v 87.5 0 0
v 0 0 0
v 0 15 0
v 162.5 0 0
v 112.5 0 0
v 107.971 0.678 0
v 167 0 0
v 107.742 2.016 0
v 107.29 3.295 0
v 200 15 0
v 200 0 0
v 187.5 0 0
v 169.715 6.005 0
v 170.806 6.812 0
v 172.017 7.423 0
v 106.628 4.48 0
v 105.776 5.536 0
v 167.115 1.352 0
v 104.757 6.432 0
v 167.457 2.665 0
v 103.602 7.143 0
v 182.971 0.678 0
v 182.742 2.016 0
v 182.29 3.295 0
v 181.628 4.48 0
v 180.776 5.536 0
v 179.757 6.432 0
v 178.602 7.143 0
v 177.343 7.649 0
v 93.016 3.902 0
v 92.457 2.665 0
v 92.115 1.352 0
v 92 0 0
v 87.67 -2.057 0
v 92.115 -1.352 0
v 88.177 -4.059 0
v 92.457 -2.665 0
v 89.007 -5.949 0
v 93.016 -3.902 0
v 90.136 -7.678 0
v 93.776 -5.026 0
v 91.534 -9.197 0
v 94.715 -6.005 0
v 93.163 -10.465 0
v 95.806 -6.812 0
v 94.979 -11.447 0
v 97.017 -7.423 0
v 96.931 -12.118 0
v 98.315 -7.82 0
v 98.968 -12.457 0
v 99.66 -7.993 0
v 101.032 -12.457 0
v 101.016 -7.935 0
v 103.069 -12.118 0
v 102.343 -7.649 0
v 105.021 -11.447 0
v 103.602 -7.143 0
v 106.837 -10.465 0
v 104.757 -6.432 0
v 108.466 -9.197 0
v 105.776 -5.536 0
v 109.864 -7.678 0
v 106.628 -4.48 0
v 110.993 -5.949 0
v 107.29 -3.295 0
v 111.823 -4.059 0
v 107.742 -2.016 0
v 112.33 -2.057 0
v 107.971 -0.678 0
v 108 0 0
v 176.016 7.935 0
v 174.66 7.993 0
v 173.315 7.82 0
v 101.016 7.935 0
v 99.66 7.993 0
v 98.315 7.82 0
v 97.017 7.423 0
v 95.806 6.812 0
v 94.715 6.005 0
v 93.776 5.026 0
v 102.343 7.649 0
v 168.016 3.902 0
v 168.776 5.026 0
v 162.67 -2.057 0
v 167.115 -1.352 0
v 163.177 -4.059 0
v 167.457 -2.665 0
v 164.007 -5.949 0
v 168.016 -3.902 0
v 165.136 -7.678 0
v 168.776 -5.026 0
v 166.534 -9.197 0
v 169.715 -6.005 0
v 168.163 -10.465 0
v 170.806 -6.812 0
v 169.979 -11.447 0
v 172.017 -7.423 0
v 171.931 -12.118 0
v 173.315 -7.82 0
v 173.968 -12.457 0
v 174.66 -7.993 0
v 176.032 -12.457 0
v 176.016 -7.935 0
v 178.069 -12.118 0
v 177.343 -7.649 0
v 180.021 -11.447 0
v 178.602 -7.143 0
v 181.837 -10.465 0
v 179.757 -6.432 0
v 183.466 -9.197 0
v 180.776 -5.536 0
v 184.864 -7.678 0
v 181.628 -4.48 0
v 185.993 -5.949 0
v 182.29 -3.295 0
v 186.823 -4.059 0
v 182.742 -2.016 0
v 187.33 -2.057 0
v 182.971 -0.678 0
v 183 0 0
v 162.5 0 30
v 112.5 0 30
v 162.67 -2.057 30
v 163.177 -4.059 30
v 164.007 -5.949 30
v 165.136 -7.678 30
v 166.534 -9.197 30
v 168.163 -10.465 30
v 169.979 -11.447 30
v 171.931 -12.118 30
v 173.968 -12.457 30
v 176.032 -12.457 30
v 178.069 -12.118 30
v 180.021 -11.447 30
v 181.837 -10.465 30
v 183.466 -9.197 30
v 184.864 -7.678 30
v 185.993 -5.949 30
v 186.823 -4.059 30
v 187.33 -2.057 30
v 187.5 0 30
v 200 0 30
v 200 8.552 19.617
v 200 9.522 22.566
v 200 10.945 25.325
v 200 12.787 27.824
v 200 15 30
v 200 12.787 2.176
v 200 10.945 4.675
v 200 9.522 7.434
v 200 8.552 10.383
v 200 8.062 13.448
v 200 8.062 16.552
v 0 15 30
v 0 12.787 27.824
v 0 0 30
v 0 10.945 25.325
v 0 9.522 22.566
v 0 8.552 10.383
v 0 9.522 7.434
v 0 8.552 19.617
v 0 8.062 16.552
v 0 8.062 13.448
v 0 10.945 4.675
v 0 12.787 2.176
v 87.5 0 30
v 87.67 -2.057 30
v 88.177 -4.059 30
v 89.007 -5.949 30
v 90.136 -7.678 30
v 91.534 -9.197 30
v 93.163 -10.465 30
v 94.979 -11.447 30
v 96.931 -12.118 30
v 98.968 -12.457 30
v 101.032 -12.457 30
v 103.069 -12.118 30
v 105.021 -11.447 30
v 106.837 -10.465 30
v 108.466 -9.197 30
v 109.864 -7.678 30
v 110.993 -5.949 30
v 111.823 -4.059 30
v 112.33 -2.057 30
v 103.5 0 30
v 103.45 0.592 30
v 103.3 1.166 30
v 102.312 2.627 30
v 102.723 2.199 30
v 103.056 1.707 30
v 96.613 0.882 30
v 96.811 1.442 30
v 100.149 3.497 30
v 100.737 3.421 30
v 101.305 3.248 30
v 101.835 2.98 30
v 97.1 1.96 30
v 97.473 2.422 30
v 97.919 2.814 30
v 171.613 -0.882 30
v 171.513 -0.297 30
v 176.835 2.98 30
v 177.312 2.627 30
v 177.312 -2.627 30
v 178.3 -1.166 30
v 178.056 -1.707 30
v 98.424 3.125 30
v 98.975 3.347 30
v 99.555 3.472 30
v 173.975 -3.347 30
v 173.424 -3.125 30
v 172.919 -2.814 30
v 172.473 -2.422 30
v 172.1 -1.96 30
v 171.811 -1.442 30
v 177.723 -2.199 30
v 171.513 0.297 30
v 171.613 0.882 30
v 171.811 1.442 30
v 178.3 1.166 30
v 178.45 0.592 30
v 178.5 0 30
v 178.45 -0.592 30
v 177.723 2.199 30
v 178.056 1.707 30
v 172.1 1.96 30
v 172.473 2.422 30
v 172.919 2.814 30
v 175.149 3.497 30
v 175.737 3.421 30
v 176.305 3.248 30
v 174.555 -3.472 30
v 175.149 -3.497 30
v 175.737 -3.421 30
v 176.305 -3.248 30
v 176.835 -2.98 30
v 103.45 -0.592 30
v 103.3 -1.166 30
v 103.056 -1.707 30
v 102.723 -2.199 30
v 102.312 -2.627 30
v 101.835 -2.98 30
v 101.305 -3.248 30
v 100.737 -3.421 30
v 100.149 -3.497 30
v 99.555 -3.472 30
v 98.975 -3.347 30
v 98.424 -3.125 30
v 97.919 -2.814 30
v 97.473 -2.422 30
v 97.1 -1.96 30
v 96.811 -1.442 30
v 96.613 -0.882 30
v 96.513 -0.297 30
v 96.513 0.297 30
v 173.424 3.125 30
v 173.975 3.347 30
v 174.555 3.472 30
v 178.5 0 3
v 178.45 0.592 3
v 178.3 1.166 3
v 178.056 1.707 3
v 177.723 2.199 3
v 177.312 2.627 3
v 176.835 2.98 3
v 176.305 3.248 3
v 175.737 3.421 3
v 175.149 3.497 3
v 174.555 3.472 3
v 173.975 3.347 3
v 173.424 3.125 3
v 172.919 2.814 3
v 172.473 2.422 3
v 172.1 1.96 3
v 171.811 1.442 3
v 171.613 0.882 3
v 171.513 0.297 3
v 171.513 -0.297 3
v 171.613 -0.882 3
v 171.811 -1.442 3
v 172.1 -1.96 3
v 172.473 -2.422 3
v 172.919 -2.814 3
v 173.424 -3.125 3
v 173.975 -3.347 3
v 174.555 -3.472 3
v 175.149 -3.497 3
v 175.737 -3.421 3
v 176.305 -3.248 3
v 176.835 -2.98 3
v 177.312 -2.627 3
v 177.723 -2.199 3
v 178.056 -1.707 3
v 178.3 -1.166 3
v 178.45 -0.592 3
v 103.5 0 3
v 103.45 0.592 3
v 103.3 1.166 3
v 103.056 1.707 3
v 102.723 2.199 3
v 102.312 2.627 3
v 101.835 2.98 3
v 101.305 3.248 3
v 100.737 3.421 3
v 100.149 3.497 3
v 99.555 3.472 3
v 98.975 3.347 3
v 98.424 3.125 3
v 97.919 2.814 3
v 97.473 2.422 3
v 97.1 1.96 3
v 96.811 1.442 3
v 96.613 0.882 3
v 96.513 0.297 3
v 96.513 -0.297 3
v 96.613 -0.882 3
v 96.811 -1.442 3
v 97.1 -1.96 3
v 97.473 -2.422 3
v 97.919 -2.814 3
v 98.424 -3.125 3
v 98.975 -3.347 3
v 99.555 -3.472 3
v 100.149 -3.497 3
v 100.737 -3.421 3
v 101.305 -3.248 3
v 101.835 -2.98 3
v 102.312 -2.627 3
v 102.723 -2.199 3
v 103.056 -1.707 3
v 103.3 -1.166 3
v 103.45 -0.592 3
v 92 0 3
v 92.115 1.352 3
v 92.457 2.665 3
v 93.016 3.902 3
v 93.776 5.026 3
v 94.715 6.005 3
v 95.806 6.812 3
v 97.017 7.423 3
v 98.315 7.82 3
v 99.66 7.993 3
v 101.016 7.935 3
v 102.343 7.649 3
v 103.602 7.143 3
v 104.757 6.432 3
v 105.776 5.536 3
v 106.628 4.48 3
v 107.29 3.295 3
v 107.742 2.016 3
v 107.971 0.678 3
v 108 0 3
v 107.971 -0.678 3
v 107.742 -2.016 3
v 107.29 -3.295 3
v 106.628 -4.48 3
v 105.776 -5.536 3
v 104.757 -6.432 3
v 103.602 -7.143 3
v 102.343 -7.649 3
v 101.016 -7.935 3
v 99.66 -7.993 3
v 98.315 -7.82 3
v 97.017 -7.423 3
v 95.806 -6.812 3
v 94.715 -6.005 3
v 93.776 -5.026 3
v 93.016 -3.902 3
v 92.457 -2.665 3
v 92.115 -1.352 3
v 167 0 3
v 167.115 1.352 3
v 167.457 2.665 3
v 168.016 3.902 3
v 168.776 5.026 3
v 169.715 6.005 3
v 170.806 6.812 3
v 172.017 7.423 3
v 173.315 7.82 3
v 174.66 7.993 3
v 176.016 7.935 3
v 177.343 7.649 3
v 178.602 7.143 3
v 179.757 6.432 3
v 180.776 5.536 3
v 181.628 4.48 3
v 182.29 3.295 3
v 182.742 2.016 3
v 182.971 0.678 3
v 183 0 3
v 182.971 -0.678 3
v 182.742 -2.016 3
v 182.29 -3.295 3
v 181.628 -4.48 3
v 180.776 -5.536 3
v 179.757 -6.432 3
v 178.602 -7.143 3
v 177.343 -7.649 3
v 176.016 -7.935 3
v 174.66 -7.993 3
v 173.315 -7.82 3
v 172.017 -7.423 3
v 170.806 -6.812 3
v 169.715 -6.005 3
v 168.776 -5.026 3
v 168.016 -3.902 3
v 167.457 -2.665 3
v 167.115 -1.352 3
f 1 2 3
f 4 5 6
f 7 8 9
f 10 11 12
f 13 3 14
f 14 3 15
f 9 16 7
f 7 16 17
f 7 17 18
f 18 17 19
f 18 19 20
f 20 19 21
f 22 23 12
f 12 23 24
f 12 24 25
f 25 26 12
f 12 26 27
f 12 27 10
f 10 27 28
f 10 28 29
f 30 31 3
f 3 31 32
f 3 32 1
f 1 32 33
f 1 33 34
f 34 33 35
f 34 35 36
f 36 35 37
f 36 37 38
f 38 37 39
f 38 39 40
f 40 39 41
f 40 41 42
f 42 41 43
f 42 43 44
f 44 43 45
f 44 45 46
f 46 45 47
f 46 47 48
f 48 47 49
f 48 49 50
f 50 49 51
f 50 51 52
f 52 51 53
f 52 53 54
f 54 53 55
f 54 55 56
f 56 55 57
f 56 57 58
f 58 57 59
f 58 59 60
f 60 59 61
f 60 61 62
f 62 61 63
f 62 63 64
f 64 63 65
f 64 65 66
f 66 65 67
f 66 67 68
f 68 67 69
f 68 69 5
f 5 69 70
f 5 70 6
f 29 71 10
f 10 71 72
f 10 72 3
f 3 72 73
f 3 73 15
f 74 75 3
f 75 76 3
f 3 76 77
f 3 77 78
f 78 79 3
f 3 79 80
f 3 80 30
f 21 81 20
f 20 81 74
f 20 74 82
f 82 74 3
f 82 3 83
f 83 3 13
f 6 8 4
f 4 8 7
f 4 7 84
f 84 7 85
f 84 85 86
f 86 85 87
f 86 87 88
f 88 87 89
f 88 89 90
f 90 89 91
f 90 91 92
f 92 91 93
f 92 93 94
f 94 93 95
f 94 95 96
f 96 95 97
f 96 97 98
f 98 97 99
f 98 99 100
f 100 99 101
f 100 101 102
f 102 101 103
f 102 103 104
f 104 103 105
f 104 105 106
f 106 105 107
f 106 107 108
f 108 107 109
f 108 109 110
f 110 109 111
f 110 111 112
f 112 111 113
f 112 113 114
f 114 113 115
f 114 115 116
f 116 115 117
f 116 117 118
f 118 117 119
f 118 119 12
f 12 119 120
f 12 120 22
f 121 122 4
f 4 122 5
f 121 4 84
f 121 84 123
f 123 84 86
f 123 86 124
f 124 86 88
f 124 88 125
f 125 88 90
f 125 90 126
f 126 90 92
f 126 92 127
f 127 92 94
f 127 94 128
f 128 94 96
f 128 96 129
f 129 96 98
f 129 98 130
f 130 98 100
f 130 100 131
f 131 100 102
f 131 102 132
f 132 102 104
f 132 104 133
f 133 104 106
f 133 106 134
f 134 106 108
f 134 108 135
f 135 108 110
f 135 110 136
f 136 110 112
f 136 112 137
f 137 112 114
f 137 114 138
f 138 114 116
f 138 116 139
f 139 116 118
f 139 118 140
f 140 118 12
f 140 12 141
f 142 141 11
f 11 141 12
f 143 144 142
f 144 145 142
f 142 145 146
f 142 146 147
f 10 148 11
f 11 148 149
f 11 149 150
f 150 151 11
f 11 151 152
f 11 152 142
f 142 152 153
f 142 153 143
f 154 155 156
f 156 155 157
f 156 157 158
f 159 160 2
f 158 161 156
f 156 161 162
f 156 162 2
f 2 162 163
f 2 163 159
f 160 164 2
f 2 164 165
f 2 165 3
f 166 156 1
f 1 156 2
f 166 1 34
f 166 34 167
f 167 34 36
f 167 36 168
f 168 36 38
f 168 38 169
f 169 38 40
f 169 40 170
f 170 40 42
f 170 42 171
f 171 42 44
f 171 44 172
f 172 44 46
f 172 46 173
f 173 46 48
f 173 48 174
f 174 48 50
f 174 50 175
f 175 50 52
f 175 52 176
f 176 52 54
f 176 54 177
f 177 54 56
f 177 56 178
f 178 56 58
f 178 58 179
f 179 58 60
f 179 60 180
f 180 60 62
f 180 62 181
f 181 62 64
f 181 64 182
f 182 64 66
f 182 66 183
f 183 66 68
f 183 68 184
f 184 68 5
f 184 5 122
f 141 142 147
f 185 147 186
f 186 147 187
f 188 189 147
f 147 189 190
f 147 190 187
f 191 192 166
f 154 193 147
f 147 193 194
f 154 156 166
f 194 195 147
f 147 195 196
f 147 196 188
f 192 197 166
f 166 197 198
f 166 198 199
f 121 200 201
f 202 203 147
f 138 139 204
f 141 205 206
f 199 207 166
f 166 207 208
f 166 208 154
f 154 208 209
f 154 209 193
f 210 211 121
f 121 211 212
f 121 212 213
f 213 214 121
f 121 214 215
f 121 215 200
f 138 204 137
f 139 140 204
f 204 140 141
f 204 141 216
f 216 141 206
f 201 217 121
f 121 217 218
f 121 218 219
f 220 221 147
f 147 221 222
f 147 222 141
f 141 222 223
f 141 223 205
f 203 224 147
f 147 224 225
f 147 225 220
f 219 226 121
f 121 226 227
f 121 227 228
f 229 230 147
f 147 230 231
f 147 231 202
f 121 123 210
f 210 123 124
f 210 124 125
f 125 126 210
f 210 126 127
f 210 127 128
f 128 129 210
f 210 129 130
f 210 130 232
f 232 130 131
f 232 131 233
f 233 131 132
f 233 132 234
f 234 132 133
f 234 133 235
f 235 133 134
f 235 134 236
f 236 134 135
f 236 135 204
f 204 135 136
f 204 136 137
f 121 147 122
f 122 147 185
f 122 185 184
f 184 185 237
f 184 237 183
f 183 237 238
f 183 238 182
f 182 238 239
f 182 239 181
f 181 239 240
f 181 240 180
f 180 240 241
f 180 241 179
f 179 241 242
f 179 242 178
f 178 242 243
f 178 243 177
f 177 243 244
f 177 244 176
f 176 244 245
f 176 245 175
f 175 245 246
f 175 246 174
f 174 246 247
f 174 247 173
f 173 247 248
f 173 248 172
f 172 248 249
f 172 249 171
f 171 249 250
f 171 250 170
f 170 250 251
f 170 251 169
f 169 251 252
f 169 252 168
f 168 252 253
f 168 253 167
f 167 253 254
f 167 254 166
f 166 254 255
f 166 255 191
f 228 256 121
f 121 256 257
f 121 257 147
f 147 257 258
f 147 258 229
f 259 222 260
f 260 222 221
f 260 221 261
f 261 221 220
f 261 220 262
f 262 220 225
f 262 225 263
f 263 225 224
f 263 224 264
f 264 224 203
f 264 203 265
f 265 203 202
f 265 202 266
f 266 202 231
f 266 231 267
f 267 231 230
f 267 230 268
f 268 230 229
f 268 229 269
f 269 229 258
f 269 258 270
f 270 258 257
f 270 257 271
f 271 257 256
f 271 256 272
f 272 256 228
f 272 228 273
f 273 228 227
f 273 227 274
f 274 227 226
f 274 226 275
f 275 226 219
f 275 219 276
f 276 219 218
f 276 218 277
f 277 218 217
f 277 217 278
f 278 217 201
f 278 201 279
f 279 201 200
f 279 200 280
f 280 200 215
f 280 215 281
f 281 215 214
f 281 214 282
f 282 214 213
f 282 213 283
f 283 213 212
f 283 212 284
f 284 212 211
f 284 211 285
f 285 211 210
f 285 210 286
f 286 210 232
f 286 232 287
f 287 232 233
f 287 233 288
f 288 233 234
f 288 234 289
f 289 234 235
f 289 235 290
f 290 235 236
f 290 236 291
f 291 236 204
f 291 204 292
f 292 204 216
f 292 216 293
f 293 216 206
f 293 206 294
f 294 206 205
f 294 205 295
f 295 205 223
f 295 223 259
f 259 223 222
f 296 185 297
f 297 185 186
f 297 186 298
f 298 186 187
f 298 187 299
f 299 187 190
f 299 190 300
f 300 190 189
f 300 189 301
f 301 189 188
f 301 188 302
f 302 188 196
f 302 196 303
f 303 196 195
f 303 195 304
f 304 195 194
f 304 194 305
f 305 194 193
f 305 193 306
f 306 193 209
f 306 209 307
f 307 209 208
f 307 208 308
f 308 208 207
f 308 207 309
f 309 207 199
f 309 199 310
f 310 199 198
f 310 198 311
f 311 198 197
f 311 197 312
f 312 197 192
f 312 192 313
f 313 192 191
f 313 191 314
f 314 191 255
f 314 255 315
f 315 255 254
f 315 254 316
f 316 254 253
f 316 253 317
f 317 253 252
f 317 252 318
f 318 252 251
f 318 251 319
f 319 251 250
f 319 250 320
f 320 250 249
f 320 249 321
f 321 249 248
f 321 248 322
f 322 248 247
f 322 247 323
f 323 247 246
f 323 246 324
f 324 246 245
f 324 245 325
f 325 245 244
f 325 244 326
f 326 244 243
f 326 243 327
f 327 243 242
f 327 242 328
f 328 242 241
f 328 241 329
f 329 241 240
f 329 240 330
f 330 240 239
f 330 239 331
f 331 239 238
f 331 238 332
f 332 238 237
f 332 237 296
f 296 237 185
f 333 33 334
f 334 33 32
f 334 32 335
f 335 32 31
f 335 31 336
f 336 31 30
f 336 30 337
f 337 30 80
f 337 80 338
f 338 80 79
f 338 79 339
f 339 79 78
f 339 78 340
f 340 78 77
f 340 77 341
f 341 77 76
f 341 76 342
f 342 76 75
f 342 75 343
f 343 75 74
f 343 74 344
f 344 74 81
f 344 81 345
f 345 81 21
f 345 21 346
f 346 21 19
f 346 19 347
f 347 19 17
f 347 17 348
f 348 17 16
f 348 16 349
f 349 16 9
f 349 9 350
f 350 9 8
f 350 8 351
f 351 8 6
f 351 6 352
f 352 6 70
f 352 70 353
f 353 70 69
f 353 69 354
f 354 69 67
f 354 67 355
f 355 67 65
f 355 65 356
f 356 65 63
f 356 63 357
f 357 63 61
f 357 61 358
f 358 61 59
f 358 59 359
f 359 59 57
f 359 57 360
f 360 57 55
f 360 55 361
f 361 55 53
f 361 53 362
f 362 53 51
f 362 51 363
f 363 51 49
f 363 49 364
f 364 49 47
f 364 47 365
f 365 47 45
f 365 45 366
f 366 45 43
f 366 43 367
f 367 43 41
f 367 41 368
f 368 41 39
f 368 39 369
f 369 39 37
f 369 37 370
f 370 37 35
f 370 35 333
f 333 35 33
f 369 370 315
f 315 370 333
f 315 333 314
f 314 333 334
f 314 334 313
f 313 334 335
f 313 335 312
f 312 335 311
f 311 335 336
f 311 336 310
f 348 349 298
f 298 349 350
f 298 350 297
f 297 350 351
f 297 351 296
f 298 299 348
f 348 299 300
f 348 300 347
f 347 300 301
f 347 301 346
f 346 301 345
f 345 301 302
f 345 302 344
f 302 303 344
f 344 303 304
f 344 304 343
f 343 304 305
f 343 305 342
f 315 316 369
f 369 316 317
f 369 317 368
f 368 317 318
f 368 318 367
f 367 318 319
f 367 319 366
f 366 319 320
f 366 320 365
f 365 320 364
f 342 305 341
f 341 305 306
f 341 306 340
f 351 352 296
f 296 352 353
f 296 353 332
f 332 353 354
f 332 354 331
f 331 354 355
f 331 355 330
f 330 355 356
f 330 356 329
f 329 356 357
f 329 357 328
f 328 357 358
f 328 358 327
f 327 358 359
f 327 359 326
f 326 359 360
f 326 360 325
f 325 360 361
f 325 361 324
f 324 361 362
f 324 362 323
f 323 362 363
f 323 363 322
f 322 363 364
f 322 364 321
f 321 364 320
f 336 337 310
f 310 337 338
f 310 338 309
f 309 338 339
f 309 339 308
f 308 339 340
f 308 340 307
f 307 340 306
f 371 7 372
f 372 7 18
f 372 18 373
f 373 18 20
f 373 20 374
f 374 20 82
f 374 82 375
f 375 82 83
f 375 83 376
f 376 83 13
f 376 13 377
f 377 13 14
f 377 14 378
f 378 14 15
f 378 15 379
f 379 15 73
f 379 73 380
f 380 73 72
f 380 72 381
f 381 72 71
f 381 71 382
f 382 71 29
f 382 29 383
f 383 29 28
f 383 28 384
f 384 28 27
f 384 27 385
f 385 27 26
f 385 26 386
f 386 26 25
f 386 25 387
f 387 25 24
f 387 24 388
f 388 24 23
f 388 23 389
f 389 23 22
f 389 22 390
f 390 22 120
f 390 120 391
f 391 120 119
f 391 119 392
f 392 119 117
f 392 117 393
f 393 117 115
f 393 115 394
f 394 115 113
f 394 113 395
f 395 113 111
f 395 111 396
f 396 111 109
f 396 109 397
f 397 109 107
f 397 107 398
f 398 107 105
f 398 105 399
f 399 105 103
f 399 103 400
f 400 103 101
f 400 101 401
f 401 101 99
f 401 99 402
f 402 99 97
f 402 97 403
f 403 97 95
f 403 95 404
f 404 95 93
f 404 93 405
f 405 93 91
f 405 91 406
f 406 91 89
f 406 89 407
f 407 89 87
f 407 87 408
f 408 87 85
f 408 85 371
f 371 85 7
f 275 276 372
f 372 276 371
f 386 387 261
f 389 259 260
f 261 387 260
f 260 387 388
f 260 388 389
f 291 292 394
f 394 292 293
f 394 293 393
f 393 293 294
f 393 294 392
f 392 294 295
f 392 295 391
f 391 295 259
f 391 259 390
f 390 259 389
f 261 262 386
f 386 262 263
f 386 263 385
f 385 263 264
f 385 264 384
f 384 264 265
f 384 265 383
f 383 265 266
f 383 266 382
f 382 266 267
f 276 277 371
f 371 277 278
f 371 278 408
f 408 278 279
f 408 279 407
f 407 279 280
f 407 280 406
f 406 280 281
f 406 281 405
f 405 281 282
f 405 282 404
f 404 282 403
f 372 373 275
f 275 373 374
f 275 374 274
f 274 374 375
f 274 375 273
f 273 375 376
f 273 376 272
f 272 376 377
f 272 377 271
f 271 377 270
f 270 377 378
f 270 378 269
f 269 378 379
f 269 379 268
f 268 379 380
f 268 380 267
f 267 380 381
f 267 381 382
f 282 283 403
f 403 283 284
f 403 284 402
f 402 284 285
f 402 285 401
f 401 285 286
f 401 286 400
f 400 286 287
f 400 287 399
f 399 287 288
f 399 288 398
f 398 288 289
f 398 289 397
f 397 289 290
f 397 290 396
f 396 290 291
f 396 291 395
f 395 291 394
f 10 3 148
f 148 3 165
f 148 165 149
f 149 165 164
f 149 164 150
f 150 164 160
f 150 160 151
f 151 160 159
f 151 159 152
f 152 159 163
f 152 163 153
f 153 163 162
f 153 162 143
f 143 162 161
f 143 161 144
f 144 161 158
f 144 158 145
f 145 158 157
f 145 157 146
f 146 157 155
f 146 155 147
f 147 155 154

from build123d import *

# Parameters (mm, degrees)
SKETCH1_R           = 12.5
SKETCH1_W           = 200
SKETCH1_H           = 15
BOSS_EXTRUDE1_DEPTH = 30
CUT_EXTRUDE2_REACH  = 204.793
SKETCH2_R           = 3.5
CUT_EXTRUDE3_START  = -27
SKETCH2_3_R         = 8
SKETCH2_3_R_2       = 3.5
CUT_EXTRUDE3_DEPTH  = 3
CUT_EXTRUDE4_REACH  = 204.793


with BuildPart() as part:
    # Sketch1 → Boss-Extrude1 (new body)
    with BuildSketch(Plane.XY):
        with Locations((175, 0)):
            Circle(SKETCH1_R)
        with Locations((100, 0)):
            Circle(SKETCH1_R)
        with Locations((100, 7.5)):
            Rectangle(SKETCH1_W, SKETCH1_H)
        with BuildLine():
            ThreePointArc((187.5, 0), (175, 12.5), (162.5, 0))
            Line((162.5, 0), (175, 0))
            Line((175, 0), (187.5, 0))
        make_face()
        with BuildLine():
            Line((175, 0), (162.5, 0))
            ThreePointArc((162.5, 0), (175, -12.5), (187.5, 0))
            Line((187.5, 0), (175, 0))
        make_face()
        with BuildLine():
            ThreePointArc((187.5, 0), (175, 12.5), (162.5, 0))
            Line((162.5, 0), (175, 0))
            Line((175, 0), (187.5, 0))
        make_face()
        with BuildLine():
            Line((175, 0), (162.5, 0))
            ThreePointArc((162.5, 0), (175, -12.5), (187.5, 0))
            Line((187.5, 0), (175, 0))
        make_face()
        with BuildLine():
            ThreePointArc((112.5, 0), (100, 12.5), (87.5, 0))
            Line((87.5, 0), (100, 0))
            Line((100, 0), (112.5, 0))
        make_face()
        with BuildLine():
            Line((100, 0), (87.5, 0))
            ThreePointArc((87.5, 0), (100, -12.5), (112.5, 0))
            Line((112.5, 0), (100, 0))
        make_face()
        with BuildLine():
            ThreePointArc((112.5, 0), (100, 12.5), (87.5, 0))
            Line((87.5, 0), (100, 0))
            Line((100, 0), (112.5, 0))
        make_face()
        with BuildLine():
            Line((100, 0), (87.5, 0))
            ThreePointArc((87.5, 0), (100, -12.5), (112.5, 0))
            Line((112.5, 0), (100, 0))
        make_face()
    extrude(amount=BOSS_EXTRUDE1_DEPTH)

    # Sketch2 → Cut-Extrude2 (cut, up to next)
    with BuildSketch(Plane.XY.offset(30), mode=Mode.PRIVATE) as cut_extrude2_sk1:
        with Locations((100, 0)):
            Circle(SKETCH2_R)
    cut_extrude2_tool1 = extrude(cut_extrude2_sk1.sketch, amount=-CUT_EXTRUDE2_REACH, mode=Mode.PRIVATE) & part.part
    # Sketch2 → Cut-Extrude2 (cut, up to next)
    with BuildSketch(Plane.XY.offset(30), mode=Mode.PRIVATE) as cut_extrude2_sk2:
        with Locations((175, 0)):
            Circle(SKETCH2_R)
    cut_extrude2_tool2 = extrude(cut_extrude2_sk2.sketch, amount=-CUT_EXTRUDE2_REACH, mode=Mode.PRIVATE) & part.part
    add(cut_extrude2_tool1.solids().sort_by_distance((100, 0, 30))[0], mode=Mode.SUBTRACT)
    add(cut_extrude2_tool2.solids().sort_by_distance((175, 0, 30))[0], mode=Mode.SUBTRACT)

    # Sketch2<3> → Cut-Extrude3 (cut)
    # profile 1 of 2: a face of its own
    with BuildSketch(Plane.XY.offset(30).offset(CUT_EXTRUDE3_START)):
        with Locations((100, 0)):
            Circle(SKETCH2_3_R)
        with Locations((100, 0)):
            Circle(SKETCH2_3_R_2, mode=Mode.SUBTRACT)
    # profile 2 of 2: a face of its own
    with BuildSketch(Plane.XY.offset(30).offset(CUT_EXTRUDE3_START)):
        with Locations((175, 0)):
            Circle(SKETCH2_3_R)
        with Locations((175, 0)):
            Circle(SKETCH2_3_R_2, mode=Mode.SUBTRACT)
    extrude(amount=-CUT_EXTRUDE3_DEPTH, mode=Mode.SUBTRACT)

    # Sketch3 → Cut-Extrude4 (cut, up to next)
    with BuildSketch(Plane.ZY, mode=Mode.PRIVATE) as cut_extrude4_sk1:
        with BuildLine():
            Line((0, 15), (30, 15))
            ThreePointArc((30, 15), (15, 8), (0, 15))
        make_face()
    cut_extrude4_tool1 = extrude(cut_extrude4_sk1.sketch, amount=-CUT_EXTRUDE4_REACH, mode=Mode.PRIVATE) & part.part
    add(cut_extrude4_tool1.solids().sort_by_distance((0, 12.152086, 15))[0], mode=Mode.SUBTRACT)


solid = part.part
